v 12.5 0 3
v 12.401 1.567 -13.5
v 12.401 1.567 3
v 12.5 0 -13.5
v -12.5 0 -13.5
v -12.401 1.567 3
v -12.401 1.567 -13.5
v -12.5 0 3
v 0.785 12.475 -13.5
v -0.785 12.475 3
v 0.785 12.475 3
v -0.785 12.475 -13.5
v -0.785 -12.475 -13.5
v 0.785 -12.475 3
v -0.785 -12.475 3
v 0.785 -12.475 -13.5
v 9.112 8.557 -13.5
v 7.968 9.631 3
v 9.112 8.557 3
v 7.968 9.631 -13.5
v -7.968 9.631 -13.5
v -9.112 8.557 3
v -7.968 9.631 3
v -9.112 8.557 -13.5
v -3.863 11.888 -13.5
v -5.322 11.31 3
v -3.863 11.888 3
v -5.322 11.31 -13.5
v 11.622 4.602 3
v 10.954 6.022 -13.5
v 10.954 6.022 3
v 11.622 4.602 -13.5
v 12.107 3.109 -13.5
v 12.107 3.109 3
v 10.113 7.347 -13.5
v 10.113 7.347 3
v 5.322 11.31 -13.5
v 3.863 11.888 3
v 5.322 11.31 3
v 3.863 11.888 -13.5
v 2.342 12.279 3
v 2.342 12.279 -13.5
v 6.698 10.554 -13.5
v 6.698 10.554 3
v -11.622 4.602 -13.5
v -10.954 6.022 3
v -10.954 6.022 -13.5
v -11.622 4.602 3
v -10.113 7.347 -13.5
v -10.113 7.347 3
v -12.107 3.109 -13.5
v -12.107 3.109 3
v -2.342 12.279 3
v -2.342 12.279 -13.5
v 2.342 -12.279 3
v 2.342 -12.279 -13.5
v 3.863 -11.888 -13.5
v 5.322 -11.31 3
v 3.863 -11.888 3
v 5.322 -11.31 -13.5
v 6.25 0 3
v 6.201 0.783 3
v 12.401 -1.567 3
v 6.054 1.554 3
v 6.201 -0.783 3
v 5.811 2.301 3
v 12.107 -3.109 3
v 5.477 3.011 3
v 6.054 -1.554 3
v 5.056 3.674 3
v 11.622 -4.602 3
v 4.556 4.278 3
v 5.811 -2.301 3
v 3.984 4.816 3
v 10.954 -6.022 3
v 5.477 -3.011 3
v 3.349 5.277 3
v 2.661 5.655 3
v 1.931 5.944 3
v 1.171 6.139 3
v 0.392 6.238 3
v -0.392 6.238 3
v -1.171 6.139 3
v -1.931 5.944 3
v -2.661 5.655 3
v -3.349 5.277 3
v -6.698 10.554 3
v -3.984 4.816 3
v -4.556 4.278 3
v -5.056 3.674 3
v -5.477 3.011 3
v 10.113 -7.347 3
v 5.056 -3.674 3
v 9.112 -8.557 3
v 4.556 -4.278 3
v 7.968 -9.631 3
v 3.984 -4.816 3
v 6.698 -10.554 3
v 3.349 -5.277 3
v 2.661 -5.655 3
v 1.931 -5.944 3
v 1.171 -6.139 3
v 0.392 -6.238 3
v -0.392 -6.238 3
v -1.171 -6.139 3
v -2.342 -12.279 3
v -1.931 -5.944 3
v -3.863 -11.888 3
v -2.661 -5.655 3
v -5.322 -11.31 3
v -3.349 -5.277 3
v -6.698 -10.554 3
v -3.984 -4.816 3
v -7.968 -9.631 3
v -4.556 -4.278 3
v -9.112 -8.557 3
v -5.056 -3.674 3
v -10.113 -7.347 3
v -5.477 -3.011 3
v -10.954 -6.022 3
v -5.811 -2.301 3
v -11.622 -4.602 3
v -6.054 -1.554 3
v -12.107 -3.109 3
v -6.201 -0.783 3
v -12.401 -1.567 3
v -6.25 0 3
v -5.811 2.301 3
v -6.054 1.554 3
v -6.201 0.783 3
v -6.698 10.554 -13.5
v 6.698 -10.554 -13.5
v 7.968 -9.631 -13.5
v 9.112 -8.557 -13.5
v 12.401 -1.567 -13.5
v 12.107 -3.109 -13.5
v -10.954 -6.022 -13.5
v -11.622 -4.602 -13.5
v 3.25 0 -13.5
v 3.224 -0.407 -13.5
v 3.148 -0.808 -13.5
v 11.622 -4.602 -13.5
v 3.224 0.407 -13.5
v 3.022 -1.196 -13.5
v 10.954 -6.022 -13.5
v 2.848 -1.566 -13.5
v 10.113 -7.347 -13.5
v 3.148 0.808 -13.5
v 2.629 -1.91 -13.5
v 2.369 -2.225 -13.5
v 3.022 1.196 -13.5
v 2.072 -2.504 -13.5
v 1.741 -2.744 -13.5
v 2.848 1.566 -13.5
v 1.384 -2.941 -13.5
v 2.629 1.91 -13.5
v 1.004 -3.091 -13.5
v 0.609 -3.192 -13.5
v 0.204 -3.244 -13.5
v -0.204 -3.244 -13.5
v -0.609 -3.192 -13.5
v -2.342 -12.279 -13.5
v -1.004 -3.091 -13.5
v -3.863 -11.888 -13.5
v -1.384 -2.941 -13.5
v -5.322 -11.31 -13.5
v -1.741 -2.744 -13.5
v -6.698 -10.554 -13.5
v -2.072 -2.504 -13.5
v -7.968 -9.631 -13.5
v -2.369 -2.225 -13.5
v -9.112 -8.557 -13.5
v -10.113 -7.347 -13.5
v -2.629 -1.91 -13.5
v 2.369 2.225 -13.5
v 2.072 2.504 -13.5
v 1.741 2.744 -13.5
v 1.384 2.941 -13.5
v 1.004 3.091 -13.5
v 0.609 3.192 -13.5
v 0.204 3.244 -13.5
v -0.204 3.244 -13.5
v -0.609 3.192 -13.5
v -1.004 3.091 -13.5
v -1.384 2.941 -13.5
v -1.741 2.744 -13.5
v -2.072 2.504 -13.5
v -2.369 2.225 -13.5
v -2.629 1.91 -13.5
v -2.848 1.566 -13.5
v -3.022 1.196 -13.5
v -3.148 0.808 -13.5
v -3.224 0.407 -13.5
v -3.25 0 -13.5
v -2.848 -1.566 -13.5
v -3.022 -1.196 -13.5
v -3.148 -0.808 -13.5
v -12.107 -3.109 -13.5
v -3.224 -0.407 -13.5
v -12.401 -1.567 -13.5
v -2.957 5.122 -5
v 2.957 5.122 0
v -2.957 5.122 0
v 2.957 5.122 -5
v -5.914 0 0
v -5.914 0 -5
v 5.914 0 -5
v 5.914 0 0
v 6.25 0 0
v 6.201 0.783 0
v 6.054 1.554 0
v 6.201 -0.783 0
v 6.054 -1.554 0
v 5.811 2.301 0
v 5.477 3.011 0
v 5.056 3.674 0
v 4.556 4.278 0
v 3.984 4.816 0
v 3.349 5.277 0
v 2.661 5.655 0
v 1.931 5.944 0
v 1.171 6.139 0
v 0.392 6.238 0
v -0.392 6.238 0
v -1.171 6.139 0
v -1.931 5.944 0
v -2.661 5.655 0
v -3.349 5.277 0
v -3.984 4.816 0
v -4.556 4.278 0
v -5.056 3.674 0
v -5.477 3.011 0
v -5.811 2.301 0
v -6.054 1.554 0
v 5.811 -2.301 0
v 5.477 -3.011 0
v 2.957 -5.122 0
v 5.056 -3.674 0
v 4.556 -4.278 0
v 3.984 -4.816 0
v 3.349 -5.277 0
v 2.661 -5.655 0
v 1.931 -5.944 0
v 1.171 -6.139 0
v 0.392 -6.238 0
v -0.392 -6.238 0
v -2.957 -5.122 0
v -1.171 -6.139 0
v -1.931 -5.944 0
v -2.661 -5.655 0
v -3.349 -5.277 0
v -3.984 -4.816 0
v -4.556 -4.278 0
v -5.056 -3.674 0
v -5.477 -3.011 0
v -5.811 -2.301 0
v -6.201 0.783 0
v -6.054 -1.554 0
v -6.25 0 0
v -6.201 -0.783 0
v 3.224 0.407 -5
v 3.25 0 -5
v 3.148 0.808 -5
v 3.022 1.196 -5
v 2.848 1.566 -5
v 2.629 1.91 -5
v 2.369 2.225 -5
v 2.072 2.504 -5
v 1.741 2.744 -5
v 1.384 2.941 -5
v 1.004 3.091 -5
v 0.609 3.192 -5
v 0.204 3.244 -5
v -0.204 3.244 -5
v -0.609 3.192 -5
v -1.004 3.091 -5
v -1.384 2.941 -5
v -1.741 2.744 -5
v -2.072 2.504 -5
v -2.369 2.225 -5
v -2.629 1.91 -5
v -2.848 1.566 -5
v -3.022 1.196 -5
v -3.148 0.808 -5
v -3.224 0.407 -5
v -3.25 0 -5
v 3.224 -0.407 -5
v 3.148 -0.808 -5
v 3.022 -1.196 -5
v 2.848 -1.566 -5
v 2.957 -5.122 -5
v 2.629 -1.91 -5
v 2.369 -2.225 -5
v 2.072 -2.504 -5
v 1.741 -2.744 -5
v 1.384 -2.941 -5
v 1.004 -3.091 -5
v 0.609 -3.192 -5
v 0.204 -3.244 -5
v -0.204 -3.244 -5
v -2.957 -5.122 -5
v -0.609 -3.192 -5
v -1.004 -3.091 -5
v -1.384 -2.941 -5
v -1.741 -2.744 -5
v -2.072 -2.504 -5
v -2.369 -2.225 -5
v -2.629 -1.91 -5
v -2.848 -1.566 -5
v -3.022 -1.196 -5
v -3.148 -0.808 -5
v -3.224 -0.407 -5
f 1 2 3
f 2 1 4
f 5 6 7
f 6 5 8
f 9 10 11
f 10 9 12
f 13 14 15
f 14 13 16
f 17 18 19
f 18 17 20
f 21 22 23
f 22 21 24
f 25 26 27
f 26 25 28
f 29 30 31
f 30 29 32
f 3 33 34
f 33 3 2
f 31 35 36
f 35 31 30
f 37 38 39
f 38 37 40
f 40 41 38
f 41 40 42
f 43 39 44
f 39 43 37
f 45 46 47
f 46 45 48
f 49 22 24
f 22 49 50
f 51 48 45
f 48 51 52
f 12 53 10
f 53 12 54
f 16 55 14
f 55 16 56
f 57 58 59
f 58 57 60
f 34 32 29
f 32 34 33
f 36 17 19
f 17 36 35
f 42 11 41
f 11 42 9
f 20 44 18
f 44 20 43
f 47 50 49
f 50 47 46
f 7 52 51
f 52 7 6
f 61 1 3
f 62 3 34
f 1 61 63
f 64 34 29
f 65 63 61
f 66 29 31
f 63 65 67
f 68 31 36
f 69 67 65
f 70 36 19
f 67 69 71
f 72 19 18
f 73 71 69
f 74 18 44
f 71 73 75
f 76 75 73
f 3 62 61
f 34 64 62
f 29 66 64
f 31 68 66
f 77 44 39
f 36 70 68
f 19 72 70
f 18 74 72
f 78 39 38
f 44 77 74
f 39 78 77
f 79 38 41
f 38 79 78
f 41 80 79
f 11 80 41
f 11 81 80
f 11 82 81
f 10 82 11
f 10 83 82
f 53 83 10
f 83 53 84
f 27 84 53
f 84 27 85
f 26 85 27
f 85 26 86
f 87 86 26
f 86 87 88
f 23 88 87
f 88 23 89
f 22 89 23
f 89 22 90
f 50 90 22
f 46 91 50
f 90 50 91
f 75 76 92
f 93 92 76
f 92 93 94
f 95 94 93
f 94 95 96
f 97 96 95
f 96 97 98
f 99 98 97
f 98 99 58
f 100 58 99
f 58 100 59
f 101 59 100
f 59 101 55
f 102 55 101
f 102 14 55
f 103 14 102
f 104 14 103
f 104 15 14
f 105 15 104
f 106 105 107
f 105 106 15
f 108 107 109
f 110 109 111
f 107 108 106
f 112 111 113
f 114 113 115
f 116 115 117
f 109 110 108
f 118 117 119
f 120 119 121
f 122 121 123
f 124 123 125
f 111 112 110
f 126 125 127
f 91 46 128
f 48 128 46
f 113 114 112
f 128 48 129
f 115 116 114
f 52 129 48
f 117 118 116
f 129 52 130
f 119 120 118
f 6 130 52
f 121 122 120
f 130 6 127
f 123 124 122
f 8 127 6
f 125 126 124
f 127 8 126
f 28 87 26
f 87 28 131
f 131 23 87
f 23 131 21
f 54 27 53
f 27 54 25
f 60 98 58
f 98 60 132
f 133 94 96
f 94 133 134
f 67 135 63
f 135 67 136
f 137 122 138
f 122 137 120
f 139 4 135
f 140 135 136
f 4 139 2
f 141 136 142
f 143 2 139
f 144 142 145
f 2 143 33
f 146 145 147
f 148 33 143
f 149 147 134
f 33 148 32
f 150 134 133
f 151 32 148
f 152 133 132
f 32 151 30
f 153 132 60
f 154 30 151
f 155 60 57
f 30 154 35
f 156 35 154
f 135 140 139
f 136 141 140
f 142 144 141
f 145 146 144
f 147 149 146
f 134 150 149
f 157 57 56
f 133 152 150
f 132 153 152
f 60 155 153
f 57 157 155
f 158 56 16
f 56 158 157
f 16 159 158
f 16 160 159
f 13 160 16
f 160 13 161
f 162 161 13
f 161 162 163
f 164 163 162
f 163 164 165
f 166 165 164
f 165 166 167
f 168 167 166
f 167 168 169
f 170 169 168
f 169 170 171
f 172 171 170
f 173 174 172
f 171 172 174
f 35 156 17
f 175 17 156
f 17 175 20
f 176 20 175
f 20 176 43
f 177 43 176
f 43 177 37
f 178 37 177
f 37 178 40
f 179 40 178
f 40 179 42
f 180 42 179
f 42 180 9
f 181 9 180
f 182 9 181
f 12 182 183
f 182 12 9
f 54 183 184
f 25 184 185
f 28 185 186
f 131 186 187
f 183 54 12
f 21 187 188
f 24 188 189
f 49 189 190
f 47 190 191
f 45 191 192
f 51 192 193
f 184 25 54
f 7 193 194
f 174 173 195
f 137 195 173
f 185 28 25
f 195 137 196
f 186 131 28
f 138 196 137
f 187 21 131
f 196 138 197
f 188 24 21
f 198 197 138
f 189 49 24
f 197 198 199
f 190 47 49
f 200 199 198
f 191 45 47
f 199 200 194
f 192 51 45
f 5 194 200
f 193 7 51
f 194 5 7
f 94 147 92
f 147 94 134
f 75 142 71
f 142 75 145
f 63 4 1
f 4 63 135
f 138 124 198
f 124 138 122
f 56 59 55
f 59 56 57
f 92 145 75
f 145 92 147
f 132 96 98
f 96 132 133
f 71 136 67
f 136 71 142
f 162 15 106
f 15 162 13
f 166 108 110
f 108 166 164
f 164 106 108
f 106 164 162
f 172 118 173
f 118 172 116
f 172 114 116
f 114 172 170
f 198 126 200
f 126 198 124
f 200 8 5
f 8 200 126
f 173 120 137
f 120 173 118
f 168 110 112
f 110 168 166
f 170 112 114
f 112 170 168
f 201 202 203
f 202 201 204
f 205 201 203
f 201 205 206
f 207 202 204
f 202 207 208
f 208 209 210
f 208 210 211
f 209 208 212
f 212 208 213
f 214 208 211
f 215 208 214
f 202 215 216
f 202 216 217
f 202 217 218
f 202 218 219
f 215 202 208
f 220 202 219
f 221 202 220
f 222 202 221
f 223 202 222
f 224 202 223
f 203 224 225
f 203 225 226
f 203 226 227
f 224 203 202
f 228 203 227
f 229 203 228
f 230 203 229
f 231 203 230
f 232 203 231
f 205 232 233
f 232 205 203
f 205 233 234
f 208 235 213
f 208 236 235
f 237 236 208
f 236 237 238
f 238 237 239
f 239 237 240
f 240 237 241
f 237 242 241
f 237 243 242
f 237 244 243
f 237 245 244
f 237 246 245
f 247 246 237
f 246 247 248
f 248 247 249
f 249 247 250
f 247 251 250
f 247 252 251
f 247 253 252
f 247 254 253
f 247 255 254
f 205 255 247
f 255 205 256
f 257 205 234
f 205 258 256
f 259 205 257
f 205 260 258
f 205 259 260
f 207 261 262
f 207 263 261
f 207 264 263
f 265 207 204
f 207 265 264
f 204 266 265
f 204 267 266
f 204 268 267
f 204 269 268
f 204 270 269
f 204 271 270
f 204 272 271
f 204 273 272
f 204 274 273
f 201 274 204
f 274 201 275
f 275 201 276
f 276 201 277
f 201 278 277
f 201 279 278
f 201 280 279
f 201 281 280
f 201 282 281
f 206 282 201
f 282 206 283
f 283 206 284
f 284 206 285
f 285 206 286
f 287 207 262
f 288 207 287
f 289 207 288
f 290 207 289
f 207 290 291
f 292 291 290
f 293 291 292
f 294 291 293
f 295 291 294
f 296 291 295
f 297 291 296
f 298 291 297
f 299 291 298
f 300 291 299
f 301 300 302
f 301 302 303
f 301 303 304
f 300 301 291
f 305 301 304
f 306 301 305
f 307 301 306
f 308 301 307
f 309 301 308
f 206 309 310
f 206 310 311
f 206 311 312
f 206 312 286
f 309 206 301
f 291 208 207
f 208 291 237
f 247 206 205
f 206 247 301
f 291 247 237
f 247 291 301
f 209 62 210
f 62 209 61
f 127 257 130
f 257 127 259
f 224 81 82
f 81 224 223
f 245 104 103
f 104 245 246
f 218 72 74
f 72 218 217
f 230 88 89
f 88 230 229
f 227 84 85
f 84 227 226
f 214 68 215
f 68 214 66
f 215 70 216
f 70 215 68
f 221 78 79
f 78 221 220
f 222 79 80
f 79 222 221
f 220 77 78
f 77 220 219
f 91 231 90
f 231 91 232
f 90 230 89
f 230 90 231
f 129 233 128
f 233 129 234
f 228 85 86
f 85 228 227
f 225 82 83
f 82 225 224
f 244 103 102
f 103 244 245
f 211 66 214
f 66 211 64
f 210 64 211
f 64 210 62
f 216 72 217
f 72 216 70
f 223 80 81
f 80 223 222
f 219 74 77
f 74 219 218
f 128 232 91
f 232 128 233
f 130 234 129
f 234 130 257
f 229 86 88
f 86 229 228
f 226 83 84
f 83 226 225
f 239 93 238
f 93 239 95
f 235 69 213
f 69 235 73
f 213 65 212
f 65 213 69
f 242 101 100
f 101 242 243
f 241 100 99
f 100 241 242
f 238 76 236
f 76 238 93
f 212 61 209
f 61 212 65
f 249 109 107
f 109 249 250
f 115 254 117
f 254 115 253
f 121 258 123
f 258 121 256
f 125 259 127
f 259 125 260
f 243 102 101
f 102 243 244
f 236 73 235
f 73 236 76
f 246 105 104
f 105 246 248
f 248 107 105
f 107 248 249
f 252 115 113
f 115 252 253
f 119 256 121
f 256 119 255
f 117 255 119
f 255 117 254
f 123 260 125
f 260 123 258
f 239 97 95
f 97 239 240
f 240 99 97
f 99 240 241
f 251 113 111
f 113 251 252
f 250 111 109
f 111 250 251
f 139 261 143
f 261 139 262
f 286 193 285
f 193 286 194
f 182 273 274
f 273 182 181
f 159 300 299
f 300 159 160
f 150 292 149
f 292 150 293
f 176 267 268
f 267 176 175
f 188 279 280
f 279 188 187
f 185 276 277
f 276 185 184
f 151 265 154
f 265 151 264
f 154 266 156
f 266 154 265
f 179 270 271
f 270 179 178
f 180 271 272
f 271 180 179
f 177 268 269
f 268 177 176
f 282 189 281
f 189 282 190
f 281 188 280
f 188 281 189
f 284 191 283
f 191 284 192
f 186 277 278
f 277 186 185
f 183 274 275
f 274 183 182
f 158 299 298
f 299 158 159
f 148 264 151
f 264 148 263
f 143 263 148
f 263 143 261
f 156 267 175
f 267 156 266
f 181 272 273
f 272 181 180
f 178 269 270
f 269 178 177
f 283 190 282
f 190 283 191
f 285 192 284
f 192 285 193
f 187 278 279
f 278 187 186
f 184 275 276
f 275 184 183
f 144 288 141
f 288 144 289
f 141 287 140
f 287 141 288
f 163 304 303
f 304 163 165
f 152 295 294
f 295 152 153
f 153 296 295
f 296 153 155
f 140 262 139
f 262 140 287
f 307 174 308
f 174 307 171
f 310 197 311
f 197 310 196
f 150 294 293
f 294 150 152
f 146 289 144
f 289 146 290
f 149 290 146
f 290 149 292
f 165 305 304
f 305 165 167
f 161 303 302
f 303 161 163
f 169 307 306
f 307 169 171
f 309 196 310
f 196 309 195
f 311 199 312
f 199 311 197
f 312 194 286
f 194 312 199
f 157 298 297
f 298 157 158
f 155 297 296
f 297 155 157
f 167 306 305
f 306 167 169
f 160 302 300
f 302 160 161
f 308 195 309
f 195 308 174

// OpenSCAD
$fn = 50;

difference() {
	union() {
		translate(v = [0, 0, -13.5]) {
			cylinder(h = 16.5, r = 12.5);
		}
		#translate(v = [0, 0, -15.0]) {
			cylinder(h = 15, r = 2.875);
		}
	}
	union() {
		translate(v = [0, 0, 0]) {
			rotate(a = [0, 0, 0]) {
				difference() {
					union() {
						translate(v = [0, 0, -5]) {
							linear_extrude(height = 5) {
								polygon(points = [[5.914249999999999, 0.0], [2.957125, 5.1218907443321156], [-2.9571249999999982, 5.1218907443321156], [-5.914249999999999, 7.242867331857232e-16], [-2.9571250000000022, -5.121890744332115], [2.9571249999999956, -5.121890744332118]]);
							}
						}
					}
					union();
				}
			}
		}
		#cylinder(h = 3, r = 6.25);
		#translate(v = [0, 0, -100.0]) {
			cylinder(h = 200, r = 3.25);
		}
	}
}
